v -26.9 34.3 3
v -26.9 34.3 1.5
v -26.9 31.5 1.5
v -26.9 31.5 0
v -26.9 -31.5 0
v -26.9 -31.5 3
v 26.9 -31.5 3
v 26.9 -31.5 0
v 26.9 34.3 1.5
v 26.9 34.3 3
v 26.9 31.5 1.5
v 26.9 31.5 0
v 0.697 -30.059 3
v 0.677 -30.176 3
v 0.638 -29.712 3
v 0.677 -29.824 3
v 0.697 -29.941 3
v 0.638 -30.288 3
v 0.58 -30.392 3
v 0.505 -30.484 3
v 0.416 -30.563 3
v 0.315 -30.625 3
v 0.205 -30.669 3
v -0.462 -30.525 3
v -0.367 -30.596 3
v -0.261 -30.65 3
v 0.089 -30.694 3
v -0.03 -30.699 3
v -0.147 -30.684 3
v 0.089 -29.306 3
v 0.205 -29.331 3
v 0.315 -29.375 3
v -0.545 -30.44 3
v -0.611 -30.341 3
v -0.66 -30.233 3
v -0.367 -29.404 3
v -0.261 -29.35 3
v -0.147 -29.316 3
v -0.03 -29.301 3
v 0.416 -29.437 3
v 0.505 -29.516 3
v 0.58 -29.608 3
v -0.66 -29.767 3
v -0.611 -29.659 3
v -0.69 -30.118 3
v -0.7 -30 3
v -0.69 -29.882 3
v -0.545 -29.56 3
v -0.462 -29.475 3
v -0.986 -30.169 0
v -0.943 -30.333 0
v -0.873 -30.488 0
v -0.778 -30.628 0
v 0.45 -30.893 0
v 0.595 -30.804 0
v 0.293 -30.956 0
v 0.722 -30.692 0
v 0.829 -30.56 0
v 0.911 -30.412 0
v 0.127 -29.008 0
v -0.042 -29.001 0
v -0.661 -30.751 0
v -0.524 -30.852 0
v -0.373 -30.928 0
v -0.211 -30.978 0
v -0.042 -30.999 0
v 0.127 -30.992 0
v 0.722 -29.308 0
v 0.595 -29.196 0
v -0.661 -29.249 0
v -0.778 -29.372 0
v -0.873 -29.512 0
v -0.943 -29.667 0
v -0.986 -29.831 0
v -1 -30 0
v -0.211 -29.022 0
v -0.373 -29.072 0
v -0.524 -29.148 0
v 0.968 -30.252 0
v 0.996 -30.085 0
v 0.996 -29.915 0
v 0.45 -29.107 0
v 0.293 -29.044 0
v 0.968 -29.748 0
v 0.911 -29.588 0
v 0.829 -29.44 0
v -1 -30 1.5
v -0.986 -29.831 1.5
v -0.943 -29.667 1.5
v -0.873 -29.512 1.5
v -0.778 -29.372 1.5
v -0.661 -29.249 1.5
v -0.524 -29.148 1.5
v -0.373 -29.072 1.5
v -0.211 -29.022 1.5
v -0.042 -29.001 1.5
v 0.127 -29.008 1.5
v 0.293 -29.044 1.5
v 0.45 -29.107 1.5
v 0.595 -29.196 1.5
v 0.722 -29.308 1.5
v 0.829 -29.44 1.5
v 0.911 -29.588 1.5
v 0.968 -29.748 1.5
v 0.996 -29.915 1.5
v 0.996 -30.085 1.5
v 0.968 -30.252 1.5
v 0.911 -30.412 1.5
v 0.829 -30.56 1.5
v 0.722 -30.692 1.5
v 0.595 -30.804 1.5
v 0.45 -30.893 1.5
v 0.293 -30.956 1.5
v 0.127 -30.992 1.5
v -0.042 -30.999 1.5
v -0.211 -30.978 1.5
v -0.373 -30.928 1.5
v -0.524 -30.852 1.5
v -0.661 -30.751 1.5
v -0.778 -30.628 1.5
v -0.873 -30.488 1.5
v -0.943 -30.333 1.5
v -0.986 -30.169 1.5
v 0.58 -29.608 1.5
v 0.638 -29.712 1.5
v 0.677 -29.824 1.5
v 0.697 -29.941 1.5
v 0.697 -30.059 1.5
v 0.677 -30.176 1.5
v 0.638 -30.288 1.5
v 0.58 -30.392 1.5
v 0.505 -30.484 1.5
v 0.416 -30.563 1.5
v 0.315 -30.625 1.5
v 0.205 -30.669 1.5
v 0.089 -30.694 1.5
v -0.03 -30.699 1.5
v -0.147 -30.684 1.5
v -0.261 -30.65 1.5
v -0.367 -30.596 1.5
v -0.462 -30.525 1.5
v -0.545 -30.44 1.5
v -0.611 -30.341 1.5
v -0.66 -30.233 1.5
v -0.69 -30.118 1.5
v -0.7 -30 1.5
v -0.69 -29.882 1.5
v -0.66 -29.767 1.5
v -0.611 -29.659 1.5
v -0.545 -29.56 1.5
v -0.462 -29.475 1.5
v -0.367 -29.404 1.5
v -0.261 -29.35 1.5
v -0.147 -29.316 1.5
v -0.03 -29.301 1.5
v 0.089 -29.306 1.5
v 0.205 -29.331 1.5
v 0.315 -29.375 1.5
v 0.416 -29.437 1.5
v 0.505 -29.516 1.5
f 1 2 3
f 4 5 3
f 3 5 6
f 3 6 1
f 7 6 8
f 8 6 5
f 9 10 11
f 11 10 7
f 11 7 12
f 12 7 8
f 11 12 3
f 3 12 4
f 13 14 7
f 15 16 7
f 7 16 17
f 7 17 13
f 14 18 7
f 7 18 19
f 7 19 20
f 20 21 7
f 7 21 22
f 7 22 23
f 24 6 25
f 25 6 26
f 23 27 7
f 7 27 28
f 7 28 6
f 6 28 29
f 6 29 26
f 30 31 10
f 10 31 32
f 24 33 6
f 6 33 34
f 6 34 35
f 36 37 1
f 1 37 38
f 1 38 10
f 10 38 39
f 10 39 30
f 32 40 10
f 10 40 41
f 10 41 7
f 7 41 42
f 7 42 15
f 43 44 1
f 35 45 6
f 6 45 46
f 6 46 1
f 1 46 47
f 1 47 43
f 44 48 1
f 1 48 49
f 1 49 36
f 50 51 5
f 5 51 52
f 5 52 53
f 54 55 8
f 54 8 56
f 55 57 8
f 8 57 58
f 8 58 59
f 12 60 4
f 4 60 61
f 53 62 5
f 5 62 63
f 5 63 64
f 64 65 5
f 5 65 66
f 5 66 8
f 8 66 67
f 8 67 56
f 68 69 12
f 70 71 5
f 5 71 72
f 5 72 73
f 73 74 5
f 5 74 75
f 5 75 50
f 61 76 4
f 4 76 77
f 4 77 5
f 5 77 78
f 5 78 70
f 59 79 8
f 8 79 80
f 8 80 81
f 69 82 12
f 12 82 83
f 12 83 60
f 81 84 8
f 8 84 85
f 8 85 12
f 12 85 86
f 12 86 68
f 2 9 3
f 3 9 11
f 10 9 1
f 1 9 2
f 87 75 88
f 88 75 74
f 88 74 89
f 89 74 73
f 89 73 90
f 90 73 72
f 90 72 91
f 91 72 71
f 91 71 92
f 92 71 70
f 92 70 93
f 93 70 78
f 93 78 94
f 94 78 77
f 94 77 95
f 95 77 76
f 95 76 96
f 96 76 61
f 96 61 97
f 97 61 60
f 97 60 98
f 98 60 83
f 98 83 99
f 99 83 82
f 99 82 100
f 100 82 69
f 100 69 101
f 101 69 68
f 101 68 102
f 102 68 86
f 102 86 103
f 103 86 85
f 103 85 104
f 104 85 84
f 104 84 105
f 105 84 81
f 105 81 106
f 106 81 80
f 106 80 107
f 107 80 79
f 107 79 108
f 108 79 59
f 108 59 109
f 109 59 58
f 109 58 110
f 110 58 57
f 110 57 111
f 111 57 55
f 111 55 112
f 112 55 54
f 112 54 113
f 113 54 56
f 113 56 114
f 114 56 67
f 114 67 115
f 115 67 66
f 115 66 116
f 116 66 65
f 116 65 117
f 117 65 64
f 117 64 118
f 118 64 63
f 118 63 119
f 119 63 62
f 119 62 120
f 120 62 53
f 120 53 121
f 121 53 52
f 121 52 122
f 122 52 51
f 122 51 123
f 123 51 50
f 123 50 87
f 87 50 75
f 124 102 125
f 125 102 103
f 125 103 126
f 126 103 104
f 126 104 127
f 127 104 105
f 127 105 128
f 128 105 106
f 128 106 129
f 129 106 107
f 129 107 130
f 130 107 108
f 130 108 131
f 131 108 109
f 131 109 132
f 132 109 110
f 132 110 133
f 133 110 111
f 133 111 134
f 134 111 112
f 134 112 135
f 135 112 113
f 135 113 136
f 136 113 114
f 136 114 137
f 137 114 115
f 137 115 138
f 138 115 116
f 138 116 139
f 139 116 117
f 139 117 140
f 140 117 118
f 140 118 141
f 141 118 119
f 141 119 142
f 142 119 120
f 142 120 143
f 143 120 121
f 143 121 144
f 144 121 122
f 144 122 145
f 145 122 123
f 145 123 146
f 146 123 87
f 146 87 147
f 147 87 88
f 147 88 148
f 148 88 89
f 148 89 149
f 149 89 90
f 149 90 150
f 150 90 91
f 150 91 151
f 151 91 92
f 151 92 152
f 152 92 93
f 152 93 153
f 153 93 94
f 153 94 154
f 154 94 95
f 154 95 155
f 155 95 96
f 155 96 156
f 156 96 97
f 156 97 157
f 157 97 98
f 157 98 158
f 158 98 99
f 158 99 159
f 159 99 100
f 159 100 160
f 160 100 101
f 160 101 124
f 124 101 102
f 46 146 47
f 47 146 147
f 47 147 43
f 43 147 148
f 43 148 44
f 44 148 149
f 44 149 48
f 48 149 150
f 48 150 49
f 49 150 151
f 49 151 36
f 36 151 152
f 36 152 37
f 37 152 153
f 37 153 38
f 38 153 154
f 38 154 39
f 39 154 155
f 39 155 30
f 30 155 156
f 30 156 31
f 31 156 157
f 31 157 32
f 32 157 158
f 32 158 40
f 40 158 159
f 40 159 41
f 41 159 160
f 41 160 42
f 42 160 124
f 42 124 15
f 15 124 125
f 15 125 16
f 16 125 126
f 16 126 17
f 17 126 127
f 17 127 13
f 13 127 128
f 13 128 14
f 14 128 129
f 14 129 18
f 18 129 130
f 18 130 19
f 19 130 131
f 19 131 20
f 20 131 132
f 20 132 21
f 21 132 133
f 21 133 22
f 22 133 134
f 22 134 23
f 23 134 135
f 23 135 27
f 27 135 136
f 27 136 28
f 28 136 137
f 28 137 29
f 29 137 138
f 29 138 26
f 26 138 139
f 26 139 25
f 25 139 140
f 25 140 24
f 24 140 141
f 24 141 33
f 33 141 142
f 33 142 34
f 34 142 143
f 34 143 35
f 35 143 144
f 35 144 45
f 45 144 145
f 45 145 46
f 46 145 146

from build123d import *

# Parameters (mm, degrees)
SKETCH_1_W          = 53.8
SKETCH_1_H          = 63
EXTRUDE_1_DEPTH     = 3
SKETCH_2_W          = 53.8
SKETCH_2_H          = 1.5
EXTRUDE_2_DEPTH     = 2.8
SKETCH_3_R          = 1
CUT_EXTRUDE_1_DEPTH = 1.5
SKETCH_3_4_R        = 0.7
CUT_EXTRUDE_2_DEPTH = 44.693248906


with BuildPart() as part:
    # 草图1 → 凸台-拉伸1 (new body)
    with BuildSketch(Plane.XY):
        Rectangle(SKETCH_1_W, SKETCH_1_H)
    extrude(amount=EXTRUDE_1_DEPTH)

    # 草图2 → 凸台-拉伸2 (add)
    with BuildSketch(Plane(origin=(0, 31.5, 0), x_dir=(1, 0, 0), z_dir=(0, 1, 0))):
        with Locations((0, -2.25)):
            Rectangle(SKETCH_2_W, SKETCH_2_H)
    extrude(amount=EXTRUDE_2_DEPTH)

    # 草图3 → 切除-拉伸1 (cut)
    with BuildSketch(Plane(origin=(0, 0, 0), x_dir=(-1, 0, 0), z_dir=(0, 0, -1))):
        with Locations((0, -30)):
            Circle(SKETCH_3_R)
    extrude(amount=-CUT_EXTRUDE_1_DEPTH, mode=Mode.SUBTRACT)

    # 草图3<4> → 切除-拉伸2 (cut, through all)
    with BuildSketch(Plane(origin=(0, 0, 0), x_dir=(-1, 0, 0), z_dir=(0, 0, -1))):
        with Locations((0, -30)):
            Circle(SKETCH_3_4_R)
    extrude(amount=-CUT_EXTRUDE_2_DEPTH, mode=Mode.SUBTRACT)


solid = part.part
